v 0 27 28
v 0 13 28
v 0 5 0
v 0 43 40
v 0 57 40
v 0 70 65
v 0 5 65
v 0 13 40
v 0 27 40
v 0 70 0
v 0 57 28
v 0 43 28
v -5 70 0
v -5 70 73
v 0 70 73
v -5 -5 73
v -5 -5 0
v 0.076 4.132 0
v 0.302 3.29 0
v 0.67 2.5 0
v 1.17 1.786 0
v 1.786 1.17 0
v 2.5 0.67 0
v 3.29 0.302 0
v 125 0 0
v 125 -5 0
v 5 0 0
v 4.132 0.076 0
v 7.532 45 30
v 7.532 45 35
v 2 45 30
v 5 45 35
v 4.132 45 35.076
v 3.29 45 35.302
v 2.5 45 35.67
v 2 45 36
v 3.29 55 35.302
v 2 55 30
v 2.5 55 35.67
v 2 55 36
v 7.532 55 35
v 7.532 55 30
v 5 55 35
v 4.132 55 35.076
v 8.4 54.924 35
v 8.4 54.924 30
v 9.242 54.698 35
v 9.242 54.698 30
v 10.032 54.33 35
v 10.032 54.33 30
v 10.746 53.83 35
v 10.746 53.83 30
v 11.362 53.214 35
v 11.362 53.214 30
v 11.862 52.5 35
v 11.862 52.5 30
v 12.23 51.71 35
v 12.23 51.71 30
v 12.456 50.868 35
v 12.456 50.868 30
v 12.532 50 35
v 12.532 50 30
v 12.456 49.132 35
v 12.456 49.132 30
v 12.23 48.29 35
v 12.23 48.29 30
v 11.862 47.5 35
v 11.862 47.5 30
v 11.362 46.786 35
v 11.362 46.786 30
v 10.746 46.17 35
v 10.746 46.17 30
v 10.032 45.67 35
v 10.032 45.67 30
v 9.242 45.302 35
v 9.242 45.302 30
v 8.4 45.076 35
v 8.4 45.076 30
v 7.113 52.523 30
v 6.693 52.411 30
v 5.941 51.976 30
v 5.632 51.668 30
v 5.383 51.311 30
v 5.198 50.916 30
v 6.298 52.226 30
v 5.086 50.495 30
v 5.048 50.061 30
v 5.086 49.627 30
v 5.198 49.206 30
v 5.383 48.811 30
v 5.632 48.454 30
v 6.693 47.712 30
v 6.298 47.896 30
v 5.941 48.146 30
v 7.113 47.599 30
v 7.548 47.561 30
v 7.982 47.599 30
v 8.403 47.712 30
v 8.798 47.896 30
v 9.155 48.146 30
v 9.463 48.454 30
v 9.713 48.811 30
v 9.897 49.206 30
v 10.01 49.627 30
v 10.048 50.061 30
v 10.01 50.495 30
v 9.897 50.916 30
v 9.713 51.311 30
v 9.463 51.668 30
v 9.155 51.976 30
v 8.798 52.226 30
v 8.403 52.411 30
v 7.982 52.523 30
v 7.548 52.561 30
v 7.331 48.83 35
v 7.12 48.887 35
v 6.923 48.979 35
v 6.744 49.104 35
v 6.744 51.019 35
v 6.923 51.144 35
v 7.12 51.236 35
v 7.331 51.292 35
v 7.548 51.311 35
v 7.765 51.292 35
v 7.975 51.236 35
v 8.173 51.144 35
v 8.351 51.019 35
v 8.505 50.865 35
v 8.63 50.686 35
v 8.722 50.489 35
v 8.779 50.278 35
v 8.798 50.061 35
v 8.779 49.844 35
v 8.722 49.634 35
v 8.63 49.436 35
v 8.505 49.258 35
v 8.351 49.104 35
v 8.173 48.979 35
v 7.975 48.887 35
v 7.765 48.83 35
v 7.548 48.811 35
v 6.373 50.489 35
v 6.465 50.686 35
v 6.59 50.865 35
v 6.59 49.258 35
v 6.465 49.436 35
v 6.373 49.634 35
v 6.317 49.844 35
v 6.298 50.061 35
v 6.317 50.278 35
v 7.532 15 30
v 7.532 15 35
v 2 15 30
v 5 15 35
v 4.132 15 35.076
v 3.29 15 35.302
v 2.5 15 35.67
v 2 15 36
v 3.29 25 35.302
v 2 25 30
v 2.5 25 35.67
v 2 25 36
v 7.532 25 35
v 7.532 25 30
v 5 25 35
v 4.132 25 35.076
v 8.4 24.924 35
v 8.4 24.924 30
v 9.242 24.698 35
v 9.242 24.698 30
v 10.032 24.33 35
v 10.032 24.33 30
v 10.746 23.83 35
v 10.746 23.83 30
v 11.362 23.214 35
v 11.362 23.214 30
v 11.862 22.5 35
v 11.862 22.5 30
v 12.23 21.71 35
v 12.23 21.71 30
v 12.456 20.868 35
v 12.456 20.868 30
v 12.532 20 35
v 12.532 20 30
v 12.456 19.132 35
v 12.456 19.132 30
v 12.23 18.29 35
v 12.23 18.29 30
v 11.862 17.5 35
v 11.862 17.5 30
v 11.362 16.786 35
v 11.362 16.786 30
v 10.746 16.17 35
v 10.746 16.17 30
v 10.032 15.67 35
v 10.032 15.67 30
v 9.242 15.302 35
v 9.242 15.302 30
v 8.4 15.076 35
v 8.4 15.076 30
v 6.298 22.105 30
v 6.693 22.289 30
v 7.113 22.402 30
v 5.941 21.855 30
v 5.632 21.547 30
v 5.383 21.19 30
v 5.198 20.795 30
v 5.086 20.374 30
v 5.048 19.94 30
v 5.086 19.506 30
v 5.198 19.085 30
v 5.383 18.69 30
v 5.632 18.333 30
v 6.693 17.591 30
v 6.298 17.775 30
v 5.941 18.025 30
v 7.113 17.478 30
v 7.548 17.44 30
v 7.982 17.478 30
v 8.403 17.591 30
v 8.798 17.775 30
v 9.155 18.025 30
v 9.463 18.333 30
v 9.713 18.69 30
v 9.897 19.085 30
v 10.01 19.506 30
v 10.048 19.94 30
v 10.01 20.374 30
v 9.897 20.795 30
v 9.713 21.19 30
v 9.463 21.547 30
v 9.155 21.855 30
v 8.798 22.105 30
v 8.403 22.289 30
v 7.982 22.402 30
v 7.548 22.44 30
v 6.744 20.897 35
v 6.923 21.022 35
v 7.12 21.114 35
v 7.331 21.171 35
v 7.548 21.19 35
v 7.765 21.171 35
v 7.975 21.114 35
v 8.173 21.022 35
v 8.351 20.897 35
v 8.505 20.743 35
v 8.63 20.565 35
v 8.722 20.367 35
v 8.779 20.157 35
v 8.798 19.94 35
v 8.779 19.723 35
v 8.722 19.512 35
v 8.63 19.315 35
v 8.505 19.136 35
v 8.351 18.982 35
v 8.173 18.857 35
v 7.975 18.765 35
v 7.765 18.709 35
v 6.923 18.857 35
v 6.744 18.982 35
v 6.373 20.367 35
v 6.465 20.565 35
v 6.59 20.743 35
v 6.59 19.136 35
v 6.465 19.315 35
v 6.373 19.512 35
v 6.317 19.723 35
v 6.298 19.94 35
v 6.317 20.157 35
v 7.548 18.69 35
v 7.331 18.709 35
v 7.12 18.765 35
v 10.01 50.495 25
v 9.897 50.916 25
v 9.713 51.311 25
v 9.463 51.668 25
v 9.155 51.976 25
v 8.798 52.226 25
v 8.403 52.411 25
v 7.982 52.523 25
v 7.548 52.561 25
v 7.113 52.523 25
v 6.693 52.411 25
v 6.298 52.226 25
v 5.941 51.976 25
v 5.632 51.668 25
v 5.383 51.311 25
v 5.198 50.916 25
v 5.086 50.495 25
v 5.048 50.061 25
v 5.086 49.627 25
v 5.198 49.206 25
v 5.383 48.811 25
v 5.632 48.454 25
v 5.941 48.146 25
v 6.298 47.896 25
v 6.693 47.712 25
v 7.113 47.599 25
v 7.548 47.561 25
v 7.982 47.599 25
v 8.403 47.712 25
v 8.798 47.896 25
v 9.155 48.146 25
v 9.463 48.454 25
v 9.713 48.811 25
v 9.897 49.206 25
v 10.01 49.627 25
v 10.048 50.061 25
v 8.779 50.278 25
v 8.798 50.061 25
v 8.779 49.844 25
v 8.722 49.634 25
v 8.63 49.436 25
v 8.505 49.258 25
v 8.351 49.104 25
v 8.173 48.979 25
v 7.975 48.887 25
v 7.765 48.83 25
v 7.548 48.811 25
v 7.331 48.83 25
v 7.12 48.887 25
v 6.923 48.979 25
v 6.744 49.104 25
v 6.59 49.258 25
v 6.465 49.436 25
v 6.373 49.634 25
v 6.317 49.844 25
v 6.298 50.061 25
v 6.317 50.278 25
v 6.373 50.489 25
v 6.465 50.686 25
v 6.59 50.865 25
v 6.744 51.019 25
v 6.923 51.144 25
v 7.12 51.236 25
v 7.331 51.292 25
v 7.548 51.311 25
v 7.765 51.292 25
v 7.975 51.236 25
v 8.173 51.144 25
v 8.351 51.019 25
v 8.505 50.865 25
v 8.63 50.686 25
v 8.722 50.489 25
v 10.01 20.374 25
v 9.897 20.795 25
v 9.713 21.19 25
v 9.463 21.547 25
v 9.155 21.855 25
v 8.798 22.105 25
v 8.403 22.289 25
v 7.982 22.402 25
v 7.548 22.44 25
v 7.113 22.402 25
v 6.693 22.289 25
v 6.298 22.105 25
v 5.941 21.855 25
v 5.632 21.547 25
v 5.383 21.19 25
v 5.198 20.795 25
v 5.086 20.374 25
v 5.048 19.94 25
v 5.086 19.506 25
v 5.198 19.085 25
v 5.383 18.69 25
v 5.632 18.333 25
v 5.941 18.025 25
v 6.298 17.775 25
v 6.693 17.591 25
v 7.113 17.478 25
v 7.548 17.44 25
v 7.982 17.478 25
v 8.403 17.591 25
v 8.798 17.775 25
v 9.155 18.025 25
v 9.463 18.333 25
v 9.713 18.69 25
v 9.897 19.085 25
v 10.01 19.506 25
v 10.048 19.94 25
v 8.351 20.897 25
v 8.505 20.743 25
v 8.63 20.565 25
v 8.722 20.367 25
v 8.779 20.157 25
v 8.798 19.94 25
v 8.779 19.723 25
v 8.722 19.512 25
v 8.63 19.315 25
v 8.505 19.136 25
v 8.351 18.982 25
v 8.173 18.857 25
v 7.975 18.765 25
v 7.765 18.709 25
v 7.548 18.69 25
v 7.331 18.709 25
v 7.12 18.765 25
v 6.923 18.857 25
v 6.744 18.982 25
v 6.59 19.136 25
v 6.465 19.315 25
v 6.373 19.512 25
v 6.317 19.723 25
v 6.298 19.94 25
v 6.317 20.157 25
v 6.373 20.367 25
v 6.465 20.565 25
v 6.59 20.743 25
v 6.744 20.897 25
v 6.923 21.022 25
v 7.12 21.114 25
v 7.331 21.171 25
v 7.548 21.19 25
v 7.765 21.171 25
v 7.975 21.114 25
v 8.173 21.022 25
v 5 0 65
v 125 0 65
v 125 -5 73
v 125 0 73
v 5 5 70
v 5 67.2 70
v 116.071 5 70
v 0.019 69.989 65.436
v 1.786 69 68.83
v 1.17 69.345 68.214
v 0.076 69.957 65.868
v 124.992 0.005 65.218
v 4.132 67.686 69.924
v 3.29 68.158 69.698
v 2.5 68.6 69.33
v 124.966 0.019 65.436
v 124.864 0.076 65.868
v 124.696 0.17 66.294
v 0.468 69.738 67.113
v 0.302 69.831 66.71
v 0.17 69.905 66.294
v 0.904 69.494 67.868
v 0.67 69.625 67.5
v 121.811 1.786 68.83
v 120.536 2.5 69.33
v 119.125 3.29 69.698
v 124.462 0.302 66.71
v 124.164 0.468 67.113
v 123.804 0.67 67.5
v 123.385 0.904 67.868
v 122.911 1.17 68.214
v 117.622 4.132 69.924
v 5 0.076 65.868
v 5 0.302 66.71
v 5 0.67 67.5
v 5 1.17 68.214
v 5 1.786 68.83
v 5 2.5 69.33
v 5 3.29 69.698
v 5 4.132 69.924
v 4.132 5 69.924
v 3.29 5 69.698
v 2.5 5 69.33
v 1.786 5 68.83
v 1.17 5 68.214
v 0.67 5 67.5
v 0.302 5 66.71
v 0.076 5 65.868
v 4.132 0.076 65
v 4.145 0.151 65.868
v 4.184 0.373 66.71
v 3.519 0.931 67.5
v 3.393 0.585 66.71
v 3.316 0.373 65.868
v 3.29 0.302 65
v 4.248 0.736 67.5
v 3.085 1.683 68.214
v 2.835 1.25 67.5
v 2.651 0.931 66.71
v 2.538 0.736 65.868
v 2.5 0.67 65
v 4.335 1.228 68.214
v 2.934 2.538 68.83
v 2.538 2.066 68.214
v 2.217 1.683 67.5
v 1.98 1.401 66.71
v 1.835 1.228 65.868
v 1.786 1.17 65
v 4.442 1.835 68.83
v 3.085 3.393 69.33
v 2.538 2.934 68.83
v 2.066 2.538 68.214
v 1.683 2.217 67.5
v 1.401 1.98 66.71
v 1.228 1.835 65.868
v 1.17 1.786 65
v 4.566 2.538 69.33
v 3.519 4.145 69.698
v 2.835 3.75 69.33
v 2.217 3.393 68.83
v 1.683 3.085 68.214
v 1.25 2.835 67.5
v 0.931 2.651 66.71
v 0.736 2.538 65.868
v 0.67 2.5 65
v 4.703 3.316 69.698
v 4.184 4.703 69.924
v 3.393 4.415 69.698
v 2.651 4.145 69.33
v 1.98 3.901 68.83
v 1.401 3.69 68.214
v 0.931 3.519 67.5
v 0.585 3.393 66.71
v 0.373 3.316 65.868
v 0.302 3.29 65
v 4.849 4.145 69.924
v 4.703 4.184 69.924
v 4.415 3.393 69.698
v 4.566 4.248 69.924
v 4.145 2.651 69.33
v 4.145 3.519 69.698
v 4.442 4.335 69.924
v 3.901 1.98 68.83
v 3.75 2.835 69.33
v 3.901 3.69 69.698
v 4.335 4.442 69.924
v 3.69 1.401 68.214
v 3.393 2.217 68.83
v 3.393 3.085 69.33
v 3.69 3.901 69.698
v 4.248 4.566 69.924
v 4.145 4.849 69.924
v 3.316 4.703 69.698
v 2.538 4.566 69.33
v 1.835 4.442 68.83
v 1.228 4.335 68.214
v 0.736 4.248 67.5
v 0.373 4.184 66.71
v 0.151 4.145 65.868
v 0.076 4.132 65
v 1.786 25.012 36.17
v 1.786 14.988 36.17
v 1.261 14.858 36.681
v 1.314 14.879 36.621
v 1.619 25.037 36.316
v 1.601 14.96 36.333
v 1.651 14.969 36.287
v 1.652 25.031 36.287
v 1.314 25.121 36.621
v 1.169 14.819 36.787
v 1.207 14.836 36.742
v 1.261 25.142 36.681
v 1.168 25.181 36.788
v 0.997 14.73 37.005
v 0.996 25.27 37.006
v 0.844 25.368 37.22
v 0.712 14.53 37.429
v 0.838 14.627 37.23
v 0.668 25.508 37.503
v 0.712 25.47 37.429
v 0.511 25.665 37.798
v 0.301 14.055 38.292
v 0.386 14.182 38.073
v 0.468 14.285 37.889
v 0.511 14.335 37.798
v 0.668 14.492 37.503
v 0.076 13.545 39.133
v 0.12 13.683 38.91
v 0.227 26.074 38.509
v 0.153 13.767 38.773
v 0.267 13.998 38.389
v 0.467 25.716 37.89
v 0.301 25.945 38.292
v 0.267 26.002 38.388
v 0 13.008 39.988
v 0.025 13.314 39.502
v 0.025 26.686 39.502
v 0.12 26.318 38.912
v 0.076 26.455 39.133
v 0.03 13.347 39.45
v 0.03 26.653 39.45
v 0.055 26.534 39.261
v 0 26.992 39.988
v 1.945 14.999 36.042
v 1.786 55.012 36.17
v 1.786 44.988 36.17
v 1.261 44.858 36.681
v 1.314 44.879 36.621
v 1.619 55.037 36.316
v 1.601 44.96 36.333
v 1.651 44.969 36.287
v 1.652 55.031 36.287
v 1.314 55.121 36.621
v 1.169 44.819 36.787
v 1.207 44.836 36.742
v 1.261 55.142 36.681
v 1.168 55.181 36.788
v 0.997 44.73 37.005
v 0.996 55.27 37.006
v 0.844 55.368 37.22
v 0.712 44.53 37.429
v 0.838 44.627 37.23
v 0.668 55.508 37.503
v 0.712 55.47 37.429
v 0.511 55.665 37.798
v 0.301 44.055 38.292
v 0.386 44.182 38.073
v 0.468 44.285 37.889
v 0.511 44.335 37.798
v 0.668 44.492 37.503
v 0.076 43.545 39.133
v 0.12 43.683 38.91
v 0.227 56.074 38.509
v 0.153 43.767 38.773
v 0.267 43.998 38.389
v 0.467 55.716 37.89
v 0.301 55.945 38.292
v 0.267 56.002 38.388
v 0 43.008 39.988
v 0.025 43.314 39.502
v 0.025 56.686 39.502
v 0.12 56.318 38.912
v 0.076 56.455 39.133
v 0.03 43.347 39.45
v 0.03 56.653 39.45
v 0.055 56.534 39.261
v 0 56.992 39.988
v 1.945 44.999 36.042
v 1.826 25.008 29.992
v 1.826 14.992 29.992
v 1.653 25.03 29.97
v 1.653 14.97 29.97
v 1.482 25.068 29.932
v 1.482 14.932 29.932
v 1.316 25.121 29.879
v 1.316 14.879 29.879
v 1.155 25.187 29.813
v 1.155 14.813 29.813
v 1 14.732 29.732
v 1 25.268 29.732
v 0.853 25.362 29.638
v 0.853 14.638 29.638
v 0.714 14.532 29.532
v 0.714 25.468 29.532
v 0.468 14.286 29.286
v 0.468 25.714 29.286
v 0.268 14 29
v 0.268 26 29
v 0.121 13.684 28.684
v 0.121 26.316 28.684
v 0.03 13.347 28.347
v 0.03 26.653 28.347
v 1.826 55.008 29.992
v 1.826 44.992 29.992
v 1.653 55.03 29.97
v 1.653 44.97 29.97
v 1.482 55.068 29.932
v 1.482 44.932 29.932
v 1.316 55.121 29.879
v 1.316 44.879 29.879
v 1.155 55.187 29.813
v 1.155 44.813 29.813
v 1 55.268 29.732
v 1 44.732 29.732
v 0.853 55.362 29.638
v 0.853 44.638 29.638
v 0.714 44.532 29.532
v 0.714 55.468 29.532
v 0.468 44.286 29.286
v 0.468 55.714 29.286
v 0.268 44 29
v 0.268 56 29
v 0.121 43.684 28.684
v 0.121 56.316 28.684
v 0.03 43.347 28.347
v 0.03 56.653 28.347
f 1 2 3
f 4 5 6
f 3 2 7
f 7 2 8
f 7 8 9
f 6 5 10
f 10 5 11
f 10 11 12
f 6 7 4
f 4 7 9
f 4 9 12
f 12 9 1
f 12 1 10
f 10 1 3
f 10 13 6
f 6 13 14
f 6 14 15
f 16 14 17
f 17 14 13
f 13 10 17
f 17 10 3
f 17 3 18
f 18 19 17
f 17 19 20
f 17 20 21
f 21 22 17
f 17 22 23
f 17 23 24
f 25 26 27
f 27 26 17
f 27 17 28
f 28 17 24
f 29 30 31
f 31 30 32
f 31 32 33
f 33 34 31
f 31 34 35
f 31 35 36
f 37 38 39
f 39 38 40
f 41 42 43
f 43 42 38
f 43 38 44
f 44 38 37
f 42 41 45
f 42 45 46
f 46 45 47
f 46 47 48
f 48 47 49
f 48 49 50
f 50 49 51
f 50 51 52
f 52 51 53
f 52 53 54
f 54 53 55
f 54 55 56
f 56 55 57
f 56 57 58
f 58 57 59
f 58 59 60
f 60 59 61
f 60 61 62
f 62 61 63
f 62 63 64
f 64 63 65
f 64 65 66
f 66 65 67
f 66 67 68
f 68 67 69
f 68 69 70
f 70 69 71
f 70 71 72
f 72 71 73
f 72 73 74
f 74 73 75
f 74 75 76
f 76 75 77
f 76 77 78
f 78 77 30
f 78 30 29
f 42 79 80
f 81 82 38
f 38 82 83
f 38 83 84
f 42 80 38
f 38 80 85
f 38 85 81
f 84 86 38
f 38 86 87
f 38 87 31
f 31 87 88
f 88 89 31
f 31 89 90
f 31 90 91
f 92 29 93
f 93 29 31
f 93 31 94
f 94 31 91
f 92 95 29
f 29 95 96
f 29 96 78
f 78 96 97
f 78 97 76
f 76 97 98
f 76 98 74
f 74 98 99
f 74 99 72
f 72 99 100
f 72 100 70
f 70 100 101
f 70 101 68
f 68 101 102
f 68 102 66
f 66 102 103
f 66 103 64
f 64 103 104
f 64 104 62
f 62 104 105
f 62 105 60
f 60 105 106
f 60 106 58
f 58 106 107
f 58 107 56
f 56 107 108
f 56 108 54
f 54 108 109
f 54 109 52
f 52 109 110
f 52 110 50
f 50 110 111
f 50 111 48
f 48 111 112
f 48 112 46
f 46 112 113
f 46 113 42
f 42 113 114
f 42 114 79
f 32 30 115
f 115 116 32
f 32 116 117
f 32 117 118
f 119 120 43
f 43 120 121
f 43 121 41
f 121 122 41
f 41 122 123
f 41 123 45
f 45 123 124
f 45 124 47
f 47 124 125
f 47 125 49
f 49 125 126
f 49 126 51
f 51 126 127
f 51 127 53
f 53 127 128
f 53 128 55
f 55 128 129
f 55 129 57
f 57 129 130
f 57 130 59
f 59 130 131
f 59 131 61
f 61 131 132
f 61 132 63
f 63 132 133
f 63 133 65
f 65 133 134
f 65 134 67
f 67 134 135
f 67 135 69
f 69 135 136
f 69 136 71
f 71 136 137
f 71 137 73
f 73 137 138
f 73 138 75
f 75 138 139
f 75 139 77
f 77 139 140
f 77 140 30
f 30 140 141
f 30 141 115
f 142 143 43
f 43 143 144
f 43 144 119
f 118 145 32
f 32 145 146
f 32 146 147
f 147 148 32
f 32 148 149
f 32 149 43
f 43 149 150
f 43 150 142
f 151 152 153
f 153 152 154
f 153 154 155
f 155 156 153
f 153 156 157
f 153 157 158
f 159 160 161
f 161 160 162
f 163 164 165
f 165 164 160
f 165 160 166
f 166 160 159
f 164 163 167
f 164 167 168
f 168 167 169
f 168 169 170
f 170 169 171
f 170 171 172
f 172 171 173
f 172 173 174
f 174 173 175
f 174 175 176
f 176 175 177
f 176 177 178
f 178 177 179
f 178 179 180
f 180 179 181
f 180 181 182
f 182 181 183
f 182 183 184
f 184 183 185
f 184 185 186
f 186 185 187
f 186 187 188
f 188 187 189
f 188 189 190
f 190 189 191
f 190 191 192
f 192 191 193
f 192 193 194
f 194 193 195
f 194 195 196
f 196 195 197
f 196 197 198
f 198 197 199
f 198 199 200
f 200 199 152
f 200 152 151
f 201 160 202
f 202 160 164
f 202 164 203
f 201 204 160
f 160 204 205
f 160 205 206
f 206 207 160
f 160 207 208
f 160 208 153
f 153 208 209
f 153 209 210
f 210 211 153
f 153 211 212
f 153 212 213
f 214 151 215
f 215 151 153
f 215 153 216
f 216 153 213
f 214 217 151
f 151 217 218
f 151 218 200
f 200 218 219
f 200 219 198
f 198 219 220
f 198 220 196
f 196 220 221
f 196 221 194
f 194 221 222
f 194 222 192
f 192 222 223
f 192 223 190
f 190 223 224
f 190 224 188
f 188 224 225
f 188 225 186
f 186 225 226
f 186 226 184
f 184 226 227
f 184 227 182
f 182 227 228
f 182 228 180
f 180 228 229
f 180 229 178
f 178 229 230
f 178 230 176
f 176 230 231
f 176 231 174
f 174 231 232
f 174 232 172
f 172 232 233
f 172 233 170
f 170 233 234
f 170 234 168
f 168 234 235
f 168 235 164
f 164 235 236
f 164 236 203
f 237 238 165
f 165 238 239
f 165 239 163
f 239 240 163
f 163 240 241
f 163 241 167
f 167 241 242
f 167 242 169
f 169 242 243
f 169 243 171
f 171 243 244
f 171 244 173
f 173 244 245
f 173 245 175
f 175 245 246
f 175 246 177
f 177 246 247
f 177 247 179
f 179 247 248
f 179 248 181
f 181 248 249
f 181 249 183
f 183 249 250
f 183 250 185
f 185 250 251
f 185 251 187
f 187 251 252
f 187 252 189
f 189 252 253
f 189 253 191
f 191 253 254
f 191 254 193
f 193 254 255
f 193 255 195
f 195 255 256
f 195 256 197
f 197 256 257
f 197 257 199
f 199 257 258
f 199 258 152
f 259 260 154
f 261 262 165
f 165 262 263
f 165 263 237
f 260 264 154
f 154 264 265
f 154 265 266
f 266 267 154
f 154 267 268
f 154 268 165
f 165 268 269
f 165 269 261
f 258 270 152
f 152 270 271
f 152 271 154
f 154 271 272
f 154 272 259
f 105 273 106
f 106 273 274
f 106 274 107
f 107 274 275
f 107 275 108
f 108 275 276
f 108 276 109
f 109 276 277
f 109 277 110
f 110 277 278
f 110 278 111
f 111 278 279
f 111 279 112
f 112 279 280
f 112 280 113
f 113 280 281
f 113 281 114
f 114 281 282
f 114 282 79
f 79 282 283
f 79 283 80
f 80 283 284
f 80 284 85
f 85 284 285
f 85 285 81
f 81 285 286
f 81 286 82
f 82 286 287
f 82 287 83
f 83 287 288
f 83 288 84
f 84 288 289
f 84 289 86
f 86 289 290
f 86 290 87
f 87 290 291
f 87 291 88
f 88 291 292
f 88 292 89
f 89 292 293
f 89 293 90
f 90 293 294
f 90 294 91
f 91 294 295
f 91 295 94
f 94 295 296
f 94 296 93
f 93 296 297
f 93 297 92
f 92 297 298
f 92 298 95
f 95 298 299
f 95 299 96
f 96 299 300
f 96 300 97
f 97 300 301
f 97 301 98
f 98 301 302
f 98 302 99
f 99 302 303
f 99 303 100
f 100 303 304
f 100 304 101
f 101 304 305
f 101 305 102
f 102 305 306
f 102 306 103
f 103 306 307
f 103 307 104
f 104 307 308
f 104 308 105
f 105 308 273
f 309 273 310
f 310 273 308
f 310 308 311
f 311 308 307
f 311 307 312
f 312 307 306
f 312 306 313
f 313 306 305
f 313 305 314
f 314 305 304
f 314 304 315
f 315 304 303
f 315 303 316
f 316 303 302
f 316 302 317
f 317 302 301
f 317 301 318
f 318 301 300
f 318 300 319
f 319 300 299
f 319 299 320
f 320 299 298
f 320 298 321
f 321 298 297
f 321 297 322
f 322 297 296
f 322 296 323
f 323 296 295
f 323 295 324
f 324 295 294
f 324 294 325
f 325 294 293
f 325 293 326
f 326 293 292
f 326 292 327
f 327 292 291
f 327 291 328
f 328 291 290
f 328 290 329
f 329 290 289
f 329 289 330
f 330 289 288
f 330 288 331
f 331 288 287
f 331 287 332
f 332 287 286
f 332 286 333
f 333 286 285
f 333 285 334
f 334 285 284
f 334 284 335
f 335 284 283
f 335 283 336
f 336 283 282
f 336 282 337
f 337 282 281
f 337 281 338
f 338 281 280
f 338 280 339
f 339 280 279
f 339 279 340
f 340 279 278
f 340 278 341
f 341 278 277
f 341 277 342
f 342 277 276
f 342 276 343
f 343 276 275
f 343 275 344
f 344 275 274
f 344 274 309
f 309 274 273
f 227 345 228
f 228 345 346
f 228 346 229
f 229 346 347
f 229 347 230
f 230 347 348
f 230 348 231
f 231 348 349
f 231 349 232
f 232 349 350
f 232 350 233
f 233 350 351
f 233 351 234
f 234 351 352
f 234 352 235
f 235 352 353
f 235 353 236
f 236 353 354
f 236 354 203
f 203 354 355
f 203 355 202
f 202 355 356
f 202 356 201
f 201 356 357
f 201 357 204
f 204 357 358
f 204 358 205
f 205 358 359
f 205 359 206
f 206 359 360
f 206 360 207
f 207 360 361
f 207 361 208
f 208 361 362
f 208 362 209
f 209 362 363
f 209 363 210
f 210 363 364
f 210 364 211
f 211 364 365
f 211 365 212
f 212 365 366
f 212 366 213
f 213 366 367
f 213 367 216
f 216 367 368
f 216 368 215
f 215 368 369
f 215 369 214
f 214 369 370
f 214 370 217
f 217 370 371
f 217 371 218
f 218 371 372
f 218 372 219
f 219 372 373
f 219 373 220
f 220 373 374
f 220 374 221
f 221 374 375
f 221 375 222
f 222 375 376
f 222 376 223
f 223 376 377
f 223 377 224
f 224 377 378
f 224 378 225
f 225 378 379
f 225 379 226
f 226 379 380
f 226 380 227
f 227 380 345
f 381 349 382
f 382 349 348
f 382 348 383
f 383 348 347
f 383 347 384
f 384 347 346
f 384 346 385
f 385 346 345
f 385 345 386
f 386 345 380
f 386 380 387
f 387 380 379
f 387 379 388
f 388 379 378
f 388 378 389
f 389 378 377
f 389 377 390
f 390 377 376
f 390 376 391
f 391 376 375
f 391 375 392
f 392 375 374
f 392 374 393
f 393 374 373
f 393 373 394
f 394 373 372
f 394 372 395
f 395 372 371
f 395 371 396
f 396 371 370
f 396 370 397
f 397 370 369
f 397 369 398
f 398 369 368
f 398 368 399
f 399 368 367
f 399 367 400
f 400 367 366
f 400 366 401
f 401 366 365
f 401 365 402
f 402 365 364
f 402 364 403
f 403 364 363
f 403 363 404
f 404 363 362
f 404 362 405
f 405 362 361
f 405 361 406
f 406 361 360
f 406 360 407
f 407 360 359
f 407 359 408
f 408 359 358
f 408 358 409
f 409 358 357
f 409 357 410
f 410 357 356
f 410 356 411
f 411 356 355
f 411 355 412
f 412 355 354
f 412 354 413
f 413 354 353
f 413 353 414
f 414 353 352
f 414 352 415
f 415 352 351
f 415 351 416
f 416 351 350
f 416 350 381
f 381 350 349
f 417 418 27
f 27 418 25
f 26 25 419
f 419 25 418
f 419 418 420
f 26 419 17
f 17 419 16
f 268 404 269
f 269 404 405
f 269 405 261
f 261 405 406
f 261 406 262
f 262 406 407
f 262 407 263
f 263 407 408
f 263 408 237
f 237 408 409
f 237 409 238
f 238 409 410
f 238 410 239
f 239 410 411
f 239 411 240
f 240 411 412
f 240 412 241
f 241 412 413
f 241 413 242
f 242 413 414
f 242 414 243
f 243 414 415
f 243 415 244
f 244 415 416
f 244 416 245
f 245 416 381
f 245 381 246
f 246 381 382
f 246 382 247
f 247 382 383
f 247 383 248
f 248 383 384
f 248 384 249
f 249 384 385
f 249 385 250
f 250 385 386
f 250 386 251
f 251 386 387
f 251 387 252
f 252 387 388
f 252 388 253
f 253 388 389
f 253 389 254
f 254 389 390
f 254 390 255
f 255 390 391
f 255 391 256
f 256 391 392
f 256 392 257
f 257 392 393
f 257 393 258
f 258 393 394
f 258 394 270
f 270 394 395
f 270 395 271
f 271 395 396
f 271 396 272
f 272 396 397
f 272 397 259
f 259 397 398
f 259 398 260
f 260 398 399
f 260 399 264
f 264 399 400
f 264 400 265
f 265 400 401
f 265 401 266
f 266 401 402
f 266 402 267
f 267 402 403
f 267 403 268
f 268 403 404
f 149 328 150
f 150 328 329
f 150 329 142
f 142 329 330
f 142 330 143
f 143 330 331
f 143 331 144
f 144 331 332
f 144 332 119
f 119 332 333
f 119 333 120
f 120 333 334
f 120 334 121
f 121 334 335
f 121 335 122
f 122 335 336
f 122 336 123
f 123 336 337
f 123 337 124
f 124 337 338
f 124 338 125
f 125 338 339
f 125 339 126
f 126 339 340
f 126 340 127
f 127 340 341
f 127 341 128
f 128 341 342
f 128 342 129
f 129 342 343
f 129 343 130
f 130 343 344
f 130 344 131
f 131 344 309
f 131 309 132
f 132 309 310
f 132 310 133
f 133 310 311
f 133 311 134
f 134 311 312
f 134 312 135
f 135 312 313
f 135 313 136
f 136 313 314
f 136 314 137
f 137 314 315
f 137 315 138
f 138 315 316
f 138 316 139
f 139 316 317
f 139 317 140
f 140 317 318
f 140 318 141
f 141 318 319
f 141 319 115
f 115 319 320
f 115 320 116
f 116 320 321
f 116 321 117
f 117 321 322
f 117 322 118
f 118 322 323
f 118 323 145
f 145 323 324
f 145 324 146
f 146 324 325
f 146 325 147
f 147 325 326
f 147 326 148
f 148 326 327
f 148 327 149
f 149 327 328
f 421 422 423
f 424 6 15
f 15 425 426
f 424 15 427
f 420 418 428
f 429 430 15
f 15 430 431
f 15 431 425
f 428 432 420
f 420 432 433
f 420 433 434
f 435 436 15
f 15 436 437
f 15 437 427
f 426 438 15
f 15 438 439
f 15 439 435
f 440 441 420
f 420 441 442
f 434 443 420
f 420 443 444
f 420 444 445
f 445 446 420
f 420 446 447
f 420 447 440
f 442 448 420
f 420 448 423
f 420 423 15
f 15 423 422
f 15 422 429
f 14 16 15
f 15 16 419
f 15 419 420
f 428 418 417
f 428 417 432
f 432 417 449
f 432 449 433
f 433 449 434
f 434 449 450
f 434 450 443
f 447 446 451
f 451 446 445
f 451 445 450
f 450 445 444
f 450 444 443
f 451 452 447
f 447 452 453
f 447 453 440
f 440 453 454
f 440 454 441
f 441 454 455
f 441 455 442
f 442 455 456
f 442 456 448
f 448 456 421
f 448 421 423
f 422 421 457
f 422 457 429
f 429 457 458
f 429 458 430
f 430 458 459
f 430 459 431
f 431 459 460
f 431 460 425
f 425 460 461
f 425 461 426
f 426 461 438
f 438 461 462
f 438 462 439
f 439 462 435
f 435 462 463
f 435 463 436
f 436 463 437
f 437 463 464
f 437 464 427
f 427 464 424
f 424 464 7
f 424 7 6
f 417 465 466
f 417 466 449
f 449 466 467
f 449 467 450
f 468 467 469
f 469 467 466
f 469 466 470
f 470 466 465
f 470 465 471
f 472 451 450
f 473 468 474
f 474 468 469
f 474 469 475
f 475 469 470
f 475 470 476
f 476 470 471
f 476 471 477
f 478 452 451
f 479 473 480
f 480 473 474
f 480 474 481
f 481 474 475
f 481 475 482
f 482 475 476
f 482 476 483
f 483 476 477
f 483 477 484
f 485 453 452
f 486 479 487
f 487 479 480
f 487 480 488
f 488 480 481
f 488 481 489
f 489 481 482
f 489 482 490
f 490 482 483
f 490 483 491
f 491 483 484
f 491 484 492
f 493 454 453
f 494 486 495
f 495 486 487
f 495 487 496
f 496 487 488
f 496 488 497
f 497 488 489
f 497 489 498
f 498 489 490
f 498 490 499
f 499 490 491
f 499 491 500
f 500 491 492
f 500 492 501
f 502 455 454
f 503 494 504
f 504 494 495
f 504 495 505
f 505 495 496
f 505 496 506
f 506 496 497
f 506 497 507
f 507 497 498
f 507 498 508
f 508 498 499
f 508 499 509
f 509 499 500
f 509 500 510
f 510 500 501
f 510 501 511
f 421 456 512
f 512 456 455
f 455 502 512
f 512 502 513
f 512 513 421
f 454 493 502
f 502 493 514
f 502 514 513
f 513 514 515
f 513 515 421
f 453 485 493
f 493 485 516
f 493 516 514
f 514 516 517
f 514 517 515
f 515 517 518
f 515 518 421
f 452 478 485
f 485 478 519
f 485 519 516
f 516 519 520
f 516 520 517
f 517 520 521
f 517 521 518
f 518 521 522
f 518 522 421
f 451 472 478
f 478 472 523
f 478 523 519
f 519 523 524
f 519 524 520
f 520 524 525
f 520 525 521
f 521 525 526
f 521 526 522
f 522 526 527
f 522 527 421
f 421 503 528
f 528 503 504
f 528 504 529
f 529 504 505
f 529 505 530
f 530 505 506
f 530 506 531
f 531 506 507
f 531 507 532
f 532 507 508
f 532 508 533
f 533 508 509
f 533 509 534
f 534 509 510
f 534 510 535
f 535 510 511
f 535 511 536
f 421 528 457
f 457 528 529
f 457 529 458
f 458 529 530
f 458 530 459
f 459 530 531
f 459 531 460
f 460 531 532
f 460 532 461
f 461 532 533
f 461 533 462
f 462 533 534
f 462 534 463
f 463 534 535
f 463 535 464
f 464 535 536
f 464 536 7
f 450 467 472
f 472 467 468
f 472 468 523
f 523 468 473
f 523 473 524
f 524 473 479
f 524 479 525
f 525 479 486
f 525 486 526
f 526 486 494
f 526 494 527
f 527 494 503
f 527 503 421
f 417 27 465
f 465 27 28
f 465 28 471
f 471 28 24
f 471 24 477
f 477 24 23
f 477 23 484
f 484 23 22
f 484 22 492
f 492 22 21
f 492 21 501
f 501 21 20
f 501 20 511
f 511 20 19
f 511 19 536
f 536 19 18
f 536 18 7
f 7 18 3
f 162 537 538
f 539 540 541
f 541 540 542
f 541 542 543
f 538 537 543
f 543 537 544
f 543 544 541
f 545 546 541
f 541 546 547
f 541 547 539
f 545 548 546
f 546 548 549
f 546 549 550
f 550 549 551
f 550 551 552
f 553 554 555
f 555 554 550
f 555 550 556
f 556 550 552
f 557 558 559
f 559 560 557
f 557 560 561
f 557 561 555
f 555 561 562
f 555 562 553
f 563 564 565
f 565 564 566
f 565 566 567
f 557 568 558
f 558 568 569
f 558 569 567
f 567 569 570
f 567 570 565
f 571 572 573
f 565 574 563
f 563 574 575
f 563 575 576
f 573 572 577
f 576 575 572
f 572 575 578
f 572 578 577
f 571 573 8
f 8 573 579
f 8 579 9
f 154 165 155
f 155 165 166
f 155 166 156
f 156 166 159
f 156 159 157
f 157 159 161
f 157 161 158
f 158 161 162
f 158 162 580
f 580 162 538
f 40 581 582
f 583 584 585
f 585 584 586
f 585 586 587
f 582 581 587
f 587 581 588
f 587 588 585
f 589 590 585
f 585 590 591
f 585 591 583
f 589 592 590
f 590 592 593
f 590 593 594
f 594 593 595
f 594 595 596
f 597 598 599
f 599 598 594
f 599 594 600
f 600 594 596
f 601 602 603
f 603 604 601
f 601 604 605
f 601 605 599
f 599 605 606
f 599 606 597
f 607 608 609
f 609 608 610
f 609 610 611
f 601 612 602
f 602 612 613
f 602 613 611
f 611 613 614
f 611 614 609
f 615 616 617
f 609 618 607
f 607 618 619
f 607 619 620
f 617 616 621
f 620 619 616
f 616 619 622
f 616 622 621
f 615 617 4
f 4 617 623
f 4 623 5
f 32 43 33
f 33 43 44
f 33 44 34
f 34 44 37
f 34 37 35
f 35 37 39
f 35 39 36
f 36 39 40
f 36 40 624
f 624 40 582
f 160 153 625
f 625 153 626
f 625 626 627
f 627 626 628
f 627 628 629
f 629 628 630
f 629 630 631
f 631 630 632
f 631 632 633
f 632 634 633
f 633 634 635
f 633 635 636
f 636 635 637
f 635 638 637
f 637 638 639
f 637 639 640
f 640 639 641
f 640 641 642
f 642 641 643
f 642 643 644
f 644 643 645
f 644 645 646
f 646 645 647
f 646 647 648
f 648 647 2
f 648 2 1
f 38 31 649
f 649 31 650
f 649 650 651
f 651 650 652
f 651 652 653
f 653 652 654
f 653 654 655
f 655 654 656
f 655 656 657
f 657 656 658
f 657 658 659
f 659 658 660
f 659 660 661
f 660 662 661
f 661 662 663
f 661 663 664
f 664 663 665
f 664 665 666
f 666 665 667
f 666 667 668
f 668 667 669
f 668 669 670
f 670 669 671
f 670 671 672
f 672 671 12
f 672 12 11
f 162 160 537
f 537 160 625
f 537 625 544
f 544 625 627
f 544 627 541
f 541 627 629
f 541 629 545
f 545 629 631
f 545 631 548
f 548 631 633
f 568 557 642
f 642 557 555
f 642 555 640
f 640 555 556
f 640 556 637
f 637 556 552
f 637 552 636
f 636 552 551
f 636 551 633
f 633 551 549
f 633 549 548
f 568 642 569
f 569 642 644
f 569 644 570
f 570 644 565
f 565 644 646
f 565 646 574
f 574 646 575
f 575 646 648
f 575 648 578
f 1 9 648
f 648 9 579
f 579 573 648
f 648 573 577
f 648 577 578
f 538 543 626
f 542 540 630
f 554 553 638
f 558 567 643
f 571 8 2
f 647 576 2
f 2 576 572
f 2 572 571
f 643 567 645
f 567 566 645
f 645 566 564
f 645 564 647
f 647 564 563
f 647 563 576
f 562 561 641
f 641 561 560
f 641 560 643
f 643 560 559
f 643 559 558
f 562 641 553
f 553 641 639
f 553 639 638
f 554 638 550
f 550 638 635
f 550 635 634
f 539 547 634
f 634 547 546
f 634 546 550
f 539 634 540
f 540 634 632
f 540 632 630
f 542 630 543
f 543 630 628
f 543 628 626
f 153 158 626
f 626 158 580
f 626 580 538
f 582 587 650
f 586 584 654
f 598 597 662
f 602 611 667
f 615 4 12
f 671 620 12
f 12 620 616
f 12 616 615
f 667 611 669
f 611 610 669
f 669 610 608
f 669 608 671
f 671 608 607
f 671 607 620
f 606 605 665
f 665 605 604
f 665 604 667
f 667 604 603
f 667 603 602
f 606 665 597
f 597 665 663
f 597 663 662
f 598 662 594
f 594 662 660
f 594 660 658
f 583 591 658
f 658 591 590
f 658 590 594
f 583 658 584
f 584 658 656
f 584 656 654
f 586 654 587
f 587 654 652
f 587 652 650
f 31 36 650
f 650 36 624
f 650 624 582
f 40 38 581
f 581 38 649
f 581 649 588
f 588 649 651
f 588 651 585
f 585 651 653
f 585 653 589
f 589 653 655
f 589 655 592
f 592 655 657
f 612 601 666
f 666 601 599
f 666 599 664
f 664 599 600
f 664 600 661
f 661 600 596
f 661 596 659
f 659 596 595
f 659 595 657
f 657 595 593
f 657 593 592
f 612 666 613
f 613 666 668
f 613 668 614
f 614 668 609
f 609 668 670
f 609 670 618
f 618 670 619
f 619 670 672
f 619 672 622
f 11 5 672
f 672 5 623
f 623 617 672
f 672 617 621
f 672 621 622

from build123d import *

# Parameters (mm, degrees)
SCHIZZO1_W                   = 5
SCHIZZO1_H                   = 70
ESTRUSIONE_ESTRUSIONE1_DEPTH = 70
ESTRUSIONE_ESTRUSIONE2_START = -35
ESTRUSIONE_ESTRUSIONE2_DEPTH = 5
SCHIZZO3_R                   = 2.5
ESTRUSIONE_ESTRUSIONE3_DEPTH = 5
SCHIZZO4_W                   = 130
SCHIZZO4_H                   = 70
ESTRUSIONE_ESTRUSIONE4_DEPTH = 5
SCHIZZO5_R                   = 1.25
TAGLIO_ESTRUSIONE1_DEPTH     = 151.166574177
ESTRUSIONE_ESTRUSIONE5_DEPTH = 3
RACCORDO1_R                  = 5
RACCORDO2_R                  = 5
RACCORDO3_R                  = 2
RACCORDO4_R                  = 2


with BuildPart() as part:
    # Schizzo1 → Estrusione-Estrusione1 (new body)
    with BuildSketch(Plane.XY):
        with Locations((-2.5, 35)):
            Rectangle(SCHIZZO1_W, SCHIZZO1_H)
    extrude(amount=ESTRUSIONE_ESTRUSIONE1_DEPTH)

    # Schizzo2 → Estrusione-Estrusione2 (add)
    with BuildSketch(Plane.XY.offset(70).offset(ESTRUSIONE_ESTRUSIONE2_START)):
        with BuildLine():
            Line((0, 55), (0, 45))
            Line((0, 45), (7.531619243, 45))
            ThreePointArc((7.531619243, 45), (12.531619243, 50), (7.531619243, 55))
            Line((7.531619243, 55), (0, 55))
        make_face()
        with BuildLine():
            Line((0, 25), (0, 15))
            Line((0, 15), (7.531619243, 15))
            ThreePointArc((7.531619243, 15), (12.531619243, 20), (7.531619243, 25))
            Line((7.531619243, 25), (0, 25))
        make_face()
    extrude(amount=-ESTRUSIONE_ESTRUSIONE2_DEPTH)

    # Schizzo3 → Estrusione-Estrusione3 (add)
    with BuildSketch(Plane(origin=(0, 0, 30), x_dir=(-1, 0, 0), z_dir=(0, 0, -1))):
        with Locations((-7.547600082, 50.061310314)):
            Circle(SCHIZZO3_R)
        with Locations((-7.547600082, 19.939772921)):
            Circle(SCHIZZO3_R)
    extrude(amount=ESTRUSIONE_ESTRUSIONE3_DEPTH)

    # Schizzo4 → Estrusione-Estrusione4 (add)
    with BuildSketch(Plane.XZ):
        with Locations((60, 35)):
            Rectangle(SCHIZZO4_W, SCHIZZO4_H)
    extrude(amount=ESTRUSIONE_ESTRUSIONE4_DEPTH)

    # Schizzo5 → Taglio-Estrusione1 (cut, through all)
    with BuildSketch(Plane(origin=(0, 0, 25), x_dir=(-1, 0, 0), z_dir=(0, 0, -1))):
        with Locations((-7.547600082, 50.061310314)):
            Circle(SCHIZZO5_R)
        with Locations((-7.547600082, 19.939772921)):
            Circle(SCHIZZO5_R)
    extrude(amount=-TAGLIO_ESTRUSIONE1_DEPTH, mode=Mode.SUBTRACT)

    # Schizzo6 → Estrusione-Estrusione5 (add)
    with BuildSketch(Plane.XY.offset(70)):
        Polygon((125, 0), (0, 70), (-5, 70), (-5, -5), (125, -5), align=None)
    extrude(amount=ESTRUSIONE_ESTRUSIONE5_DEPTH)

    # Raccordo1
    raccordo1_edges = [part.edges().sort_by_distance(p)[0] for p in [
        (0, 0, 35),
        (0, 35, 70),
        (62.5, 0, 70),
    ]]
    fillet(raccordo1_edges, radius=RACCORDO1_R)

    # Raccordo2
    raccordo2_edges = [part.edges().sort_by_distance(p)[0] for p in [
        (0, 20, 35),
        (0, 50, 35),
    ]]
    fillet(raccordo2_edges, radius=RACCORDO2_R)

    # Raccordo3
    raccordo3_edges = [part.edges().sort_by_distance(p)[0] for p in [
        (0, 20, 30),
        (0, 50, 30),
    ]]
    fillet(raccordo3_edges, radius=RACCORDO3_R)

    # Raccordo4
    raccordo4_edges = [part.edges().sort_by_distance(p)[0] for p in [
        (0, 25, 34),
        (0, 15, 34),
        (0, 45, 34),
        (0, 55, 34),
    ]]
    fillet(raccordo4_edges, radius=RACCORDO4_R)


solid = part.part
